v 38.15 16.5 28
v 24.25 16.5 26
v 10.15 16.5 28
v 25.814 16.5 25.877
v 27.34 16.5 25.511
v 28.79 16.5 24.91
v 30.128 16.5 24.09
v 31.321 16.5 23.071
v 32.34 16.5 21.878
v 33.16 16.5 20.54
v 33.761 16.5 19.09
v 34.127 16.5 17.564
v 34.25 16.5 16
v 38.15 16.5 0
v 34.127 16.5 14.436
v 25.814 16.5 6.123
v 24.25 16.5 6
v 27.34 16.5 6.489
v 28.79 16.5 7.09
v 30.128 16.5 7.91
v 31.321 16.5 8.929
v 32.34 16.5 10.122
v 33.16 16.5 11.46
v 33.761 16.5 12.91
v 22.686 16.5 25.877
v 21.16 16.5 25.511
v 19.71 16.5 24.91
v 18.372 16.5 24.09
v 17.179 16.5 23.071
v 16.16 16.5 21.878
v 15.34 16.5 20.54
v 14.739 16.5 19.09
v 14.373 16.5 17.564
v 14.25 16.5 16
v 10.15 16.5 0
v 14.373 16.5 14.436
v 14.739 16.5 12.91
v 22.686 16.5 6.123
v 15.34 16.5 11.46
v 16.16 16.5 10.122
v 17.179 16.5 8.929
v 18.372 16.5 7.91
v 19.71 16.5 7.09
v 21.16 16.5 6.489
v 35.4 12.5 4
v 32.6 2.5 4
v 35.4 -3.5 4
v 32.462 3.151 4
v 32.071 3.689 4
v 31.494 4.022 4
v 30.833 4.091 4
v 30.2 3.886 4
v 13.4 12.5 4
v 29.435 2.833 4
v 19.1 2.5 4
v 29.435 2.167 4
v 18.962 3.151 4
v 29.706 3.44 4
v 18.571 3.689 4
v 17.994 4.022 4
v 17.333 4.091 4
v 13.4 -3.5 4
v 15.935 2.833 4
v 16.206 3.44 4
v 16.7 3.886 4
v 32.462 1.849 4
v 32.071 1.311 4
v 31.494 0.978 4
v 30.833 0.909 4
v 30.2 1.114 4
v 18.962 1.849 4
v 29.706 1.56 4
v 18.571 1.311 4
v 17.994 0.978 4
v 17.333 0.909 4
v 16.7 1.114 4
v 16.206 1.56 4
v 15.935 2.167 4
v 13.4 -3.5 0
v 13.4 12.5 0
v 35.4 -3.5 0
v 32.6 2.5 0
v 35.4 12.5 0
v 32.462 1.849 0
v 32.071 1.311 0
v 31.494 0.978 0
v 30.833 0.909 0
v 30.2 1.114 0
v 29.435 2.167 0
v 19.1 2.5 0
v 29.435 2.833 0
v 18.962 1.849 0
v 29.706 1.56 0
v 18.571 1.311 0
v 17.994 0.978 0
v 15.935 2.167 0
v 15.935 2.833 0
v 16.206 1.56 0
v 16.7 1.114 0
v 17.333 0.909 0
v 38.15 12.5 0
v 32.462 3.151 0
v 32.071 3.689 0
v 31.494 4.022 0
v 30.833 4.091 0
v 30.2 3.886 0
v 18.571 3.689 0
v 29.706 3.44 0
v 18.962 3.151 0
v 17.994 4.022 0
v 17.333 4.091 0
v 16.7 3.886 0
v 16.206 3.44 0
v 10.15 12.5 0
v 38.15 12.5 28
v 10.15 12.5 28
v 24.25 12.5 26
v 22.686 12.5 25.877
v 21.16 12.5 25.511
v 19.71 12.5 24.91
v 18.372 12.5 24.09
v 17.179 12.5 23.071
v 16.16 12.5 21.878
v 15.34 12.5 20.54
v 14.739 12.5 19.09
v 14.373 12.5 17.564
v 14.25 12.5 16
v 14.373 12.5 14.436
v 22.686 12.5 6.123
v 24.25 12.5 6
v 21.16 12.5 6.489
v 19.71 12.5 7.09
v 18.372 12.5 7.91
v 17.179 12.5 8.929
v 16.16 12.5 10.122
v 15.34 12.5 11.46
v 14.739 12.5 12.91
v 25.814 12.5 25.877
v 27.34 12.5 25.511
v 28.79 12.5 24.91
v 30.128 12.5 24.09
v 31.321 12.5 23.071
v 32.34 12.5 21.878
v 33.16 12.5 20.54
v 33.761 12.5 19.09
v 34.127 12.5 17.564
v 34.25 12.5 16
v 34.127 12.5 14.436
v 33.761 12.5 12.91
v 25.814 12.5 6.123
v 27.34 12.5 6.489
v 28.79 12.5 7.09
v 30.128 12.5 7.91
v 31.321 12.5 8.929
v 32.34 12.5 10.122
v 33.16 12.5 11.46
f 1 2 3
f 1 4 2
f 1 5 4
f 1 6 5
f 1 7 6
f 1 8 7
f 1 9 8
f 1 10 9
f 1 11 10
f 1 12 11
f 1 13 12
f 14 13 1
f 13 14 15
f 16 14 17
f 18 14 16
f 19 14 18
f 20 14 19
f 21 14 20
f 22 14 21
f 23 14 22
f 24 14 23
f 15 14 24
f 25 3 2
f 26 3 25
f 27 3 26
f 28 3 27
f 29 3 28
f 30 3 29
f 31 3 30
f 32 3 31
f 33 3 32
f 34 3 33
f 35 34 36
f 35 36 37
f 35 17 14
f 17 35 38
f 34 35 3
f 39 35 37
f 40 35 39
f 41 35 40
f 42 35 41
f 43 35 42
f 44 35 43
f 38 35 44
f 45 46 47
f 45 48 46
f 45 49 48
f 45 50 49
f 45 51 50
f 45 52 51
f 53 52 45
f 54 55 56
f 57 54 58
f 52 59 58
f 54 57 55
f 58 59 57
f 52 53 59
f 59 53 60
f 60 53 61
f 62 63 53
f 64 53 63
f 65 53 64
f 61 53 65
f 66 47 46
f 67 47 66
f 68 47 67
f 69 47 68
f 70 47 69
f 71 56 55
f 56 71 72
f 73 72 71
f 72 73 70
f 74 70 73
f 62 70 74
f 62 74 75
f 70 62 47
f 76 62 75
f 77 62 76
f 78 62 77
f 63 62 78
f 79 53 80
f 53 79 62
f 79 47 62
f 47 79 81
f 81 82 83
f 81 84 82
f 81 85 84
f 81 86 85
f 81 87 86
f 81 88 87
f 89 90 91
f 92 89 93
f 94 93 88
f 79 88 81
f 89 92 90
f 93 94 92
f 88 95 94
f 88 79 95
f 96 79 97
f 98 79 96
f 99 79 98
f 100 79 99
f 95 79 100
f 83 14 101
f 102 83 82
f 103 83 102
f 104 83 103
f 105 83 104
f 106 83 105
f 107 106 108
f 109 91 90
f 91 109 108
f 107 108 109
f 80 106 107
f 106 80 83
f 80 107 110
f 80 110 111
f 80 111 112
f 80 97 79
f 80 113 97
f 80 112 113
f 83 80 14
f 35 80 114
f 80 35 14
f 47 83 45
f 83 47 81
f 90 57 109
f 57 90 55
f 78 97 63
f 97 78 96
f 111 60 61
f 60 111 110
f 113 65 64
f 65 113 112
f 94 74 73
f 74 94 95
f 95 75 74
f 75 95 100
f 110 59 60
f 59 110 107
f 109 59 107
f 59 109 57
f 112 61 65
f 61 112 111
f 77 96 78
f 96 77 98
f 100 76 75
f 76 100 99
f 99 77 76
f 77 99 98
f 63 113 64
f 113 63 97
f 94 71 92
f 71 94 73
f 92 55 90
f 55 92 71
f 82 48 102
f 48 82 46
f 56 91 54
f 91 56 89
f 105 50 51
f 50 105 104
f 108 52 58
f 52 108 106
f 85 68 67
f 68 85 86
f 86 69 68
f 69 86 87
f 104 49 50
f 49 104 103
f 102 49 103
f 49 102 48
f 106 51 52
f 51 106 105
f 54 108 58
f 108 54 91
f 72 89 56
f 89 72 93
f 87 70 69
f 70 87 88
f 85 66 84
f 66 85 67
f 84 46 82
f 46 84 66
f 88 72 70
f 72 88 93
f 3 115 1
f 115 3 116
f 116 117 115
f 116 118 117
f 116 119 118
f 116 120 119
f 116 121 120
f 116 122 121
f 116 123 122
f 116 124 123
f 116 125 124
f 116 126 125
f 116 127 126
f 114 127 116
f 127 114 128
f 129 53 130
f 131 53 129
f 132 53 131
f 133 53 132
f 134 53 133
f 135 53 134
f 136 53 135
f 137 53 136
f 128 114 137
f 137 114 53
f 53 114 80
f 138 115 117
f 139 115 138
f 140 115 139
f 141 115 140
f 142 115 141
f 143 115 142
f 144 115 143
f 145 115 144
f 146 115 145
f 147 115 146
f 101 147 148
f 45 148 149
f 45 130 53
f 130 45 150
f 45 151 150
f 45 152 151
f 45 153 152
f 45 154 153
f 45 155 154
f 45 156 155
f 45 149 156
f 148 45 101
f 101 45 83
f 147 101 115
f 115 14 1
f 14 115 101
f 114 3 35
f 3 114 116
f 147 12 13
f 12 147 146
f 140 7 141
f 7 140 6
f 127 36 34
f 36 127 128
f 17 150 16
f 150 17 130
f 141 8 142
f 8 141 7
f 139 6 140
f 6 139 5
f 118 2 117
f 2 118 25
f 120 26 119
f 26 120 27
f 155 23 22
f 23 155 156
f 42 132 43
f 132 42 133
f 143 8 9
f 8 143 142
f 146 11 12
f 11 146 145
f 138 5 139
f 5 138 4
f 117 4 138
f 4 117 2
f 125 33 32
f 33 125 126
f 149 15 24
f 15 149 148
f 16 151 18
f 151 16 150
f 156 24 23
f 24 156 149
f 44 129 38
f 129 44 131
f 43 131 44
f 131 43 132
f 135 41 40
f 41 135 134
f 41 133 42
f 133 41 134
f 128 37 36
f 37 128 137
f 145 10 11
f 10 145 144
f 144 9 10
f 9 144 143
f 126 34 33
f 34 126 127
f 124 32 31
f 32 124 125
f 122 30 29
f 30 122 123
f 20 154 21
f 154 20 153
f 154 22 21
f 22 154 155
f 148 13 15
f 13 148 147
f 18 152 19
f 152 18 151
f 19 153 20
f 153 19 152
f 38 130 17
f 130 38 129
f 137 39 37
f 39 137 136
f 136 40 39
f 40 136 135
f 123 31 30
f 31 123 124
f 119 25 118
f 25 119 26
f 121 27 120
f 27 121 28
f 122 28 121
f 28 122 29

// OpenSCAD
rotate([0,0,0]){
 //rotate([0,180,0])translate([-14,-18,0]){
difference(){
 translate([35.4,-3.5,0])rotate([0,0,90])cube([20,22,4]);    
 translate([17.5,+2.5,0])rotate([0,0,0])cylinder(r=1.6, h=5, $fn=15);
 translate([31,2.5,0])rotate([0,0,0])cylinder(r=1.6, h=5, $fn=15);
 }
 translate([30.75,16,0]){
 difference(){
 // Plocha s dírou pro indukcak
 translate([35.4-28,-3.5,0])rotate([0,0,90])cube([4,28,28]);
 translate([24.5-31,+1,16])rotate([90,0,0])cylinder(r=10, h=5, $fn=40);
}
// stabilizacni pahyl
//translate([26.4,-3.5,-12])rotate([0,0,90])cube([9.4,4.8,15]);
// spojovaci trojuhelnik
//translate([26.4,0.5,-12])rotate([90,-90,0])linear_extrude(height = 4)polygon([[16,-9],[12,13],[12,19],[40,19]]);
//}
}
}
